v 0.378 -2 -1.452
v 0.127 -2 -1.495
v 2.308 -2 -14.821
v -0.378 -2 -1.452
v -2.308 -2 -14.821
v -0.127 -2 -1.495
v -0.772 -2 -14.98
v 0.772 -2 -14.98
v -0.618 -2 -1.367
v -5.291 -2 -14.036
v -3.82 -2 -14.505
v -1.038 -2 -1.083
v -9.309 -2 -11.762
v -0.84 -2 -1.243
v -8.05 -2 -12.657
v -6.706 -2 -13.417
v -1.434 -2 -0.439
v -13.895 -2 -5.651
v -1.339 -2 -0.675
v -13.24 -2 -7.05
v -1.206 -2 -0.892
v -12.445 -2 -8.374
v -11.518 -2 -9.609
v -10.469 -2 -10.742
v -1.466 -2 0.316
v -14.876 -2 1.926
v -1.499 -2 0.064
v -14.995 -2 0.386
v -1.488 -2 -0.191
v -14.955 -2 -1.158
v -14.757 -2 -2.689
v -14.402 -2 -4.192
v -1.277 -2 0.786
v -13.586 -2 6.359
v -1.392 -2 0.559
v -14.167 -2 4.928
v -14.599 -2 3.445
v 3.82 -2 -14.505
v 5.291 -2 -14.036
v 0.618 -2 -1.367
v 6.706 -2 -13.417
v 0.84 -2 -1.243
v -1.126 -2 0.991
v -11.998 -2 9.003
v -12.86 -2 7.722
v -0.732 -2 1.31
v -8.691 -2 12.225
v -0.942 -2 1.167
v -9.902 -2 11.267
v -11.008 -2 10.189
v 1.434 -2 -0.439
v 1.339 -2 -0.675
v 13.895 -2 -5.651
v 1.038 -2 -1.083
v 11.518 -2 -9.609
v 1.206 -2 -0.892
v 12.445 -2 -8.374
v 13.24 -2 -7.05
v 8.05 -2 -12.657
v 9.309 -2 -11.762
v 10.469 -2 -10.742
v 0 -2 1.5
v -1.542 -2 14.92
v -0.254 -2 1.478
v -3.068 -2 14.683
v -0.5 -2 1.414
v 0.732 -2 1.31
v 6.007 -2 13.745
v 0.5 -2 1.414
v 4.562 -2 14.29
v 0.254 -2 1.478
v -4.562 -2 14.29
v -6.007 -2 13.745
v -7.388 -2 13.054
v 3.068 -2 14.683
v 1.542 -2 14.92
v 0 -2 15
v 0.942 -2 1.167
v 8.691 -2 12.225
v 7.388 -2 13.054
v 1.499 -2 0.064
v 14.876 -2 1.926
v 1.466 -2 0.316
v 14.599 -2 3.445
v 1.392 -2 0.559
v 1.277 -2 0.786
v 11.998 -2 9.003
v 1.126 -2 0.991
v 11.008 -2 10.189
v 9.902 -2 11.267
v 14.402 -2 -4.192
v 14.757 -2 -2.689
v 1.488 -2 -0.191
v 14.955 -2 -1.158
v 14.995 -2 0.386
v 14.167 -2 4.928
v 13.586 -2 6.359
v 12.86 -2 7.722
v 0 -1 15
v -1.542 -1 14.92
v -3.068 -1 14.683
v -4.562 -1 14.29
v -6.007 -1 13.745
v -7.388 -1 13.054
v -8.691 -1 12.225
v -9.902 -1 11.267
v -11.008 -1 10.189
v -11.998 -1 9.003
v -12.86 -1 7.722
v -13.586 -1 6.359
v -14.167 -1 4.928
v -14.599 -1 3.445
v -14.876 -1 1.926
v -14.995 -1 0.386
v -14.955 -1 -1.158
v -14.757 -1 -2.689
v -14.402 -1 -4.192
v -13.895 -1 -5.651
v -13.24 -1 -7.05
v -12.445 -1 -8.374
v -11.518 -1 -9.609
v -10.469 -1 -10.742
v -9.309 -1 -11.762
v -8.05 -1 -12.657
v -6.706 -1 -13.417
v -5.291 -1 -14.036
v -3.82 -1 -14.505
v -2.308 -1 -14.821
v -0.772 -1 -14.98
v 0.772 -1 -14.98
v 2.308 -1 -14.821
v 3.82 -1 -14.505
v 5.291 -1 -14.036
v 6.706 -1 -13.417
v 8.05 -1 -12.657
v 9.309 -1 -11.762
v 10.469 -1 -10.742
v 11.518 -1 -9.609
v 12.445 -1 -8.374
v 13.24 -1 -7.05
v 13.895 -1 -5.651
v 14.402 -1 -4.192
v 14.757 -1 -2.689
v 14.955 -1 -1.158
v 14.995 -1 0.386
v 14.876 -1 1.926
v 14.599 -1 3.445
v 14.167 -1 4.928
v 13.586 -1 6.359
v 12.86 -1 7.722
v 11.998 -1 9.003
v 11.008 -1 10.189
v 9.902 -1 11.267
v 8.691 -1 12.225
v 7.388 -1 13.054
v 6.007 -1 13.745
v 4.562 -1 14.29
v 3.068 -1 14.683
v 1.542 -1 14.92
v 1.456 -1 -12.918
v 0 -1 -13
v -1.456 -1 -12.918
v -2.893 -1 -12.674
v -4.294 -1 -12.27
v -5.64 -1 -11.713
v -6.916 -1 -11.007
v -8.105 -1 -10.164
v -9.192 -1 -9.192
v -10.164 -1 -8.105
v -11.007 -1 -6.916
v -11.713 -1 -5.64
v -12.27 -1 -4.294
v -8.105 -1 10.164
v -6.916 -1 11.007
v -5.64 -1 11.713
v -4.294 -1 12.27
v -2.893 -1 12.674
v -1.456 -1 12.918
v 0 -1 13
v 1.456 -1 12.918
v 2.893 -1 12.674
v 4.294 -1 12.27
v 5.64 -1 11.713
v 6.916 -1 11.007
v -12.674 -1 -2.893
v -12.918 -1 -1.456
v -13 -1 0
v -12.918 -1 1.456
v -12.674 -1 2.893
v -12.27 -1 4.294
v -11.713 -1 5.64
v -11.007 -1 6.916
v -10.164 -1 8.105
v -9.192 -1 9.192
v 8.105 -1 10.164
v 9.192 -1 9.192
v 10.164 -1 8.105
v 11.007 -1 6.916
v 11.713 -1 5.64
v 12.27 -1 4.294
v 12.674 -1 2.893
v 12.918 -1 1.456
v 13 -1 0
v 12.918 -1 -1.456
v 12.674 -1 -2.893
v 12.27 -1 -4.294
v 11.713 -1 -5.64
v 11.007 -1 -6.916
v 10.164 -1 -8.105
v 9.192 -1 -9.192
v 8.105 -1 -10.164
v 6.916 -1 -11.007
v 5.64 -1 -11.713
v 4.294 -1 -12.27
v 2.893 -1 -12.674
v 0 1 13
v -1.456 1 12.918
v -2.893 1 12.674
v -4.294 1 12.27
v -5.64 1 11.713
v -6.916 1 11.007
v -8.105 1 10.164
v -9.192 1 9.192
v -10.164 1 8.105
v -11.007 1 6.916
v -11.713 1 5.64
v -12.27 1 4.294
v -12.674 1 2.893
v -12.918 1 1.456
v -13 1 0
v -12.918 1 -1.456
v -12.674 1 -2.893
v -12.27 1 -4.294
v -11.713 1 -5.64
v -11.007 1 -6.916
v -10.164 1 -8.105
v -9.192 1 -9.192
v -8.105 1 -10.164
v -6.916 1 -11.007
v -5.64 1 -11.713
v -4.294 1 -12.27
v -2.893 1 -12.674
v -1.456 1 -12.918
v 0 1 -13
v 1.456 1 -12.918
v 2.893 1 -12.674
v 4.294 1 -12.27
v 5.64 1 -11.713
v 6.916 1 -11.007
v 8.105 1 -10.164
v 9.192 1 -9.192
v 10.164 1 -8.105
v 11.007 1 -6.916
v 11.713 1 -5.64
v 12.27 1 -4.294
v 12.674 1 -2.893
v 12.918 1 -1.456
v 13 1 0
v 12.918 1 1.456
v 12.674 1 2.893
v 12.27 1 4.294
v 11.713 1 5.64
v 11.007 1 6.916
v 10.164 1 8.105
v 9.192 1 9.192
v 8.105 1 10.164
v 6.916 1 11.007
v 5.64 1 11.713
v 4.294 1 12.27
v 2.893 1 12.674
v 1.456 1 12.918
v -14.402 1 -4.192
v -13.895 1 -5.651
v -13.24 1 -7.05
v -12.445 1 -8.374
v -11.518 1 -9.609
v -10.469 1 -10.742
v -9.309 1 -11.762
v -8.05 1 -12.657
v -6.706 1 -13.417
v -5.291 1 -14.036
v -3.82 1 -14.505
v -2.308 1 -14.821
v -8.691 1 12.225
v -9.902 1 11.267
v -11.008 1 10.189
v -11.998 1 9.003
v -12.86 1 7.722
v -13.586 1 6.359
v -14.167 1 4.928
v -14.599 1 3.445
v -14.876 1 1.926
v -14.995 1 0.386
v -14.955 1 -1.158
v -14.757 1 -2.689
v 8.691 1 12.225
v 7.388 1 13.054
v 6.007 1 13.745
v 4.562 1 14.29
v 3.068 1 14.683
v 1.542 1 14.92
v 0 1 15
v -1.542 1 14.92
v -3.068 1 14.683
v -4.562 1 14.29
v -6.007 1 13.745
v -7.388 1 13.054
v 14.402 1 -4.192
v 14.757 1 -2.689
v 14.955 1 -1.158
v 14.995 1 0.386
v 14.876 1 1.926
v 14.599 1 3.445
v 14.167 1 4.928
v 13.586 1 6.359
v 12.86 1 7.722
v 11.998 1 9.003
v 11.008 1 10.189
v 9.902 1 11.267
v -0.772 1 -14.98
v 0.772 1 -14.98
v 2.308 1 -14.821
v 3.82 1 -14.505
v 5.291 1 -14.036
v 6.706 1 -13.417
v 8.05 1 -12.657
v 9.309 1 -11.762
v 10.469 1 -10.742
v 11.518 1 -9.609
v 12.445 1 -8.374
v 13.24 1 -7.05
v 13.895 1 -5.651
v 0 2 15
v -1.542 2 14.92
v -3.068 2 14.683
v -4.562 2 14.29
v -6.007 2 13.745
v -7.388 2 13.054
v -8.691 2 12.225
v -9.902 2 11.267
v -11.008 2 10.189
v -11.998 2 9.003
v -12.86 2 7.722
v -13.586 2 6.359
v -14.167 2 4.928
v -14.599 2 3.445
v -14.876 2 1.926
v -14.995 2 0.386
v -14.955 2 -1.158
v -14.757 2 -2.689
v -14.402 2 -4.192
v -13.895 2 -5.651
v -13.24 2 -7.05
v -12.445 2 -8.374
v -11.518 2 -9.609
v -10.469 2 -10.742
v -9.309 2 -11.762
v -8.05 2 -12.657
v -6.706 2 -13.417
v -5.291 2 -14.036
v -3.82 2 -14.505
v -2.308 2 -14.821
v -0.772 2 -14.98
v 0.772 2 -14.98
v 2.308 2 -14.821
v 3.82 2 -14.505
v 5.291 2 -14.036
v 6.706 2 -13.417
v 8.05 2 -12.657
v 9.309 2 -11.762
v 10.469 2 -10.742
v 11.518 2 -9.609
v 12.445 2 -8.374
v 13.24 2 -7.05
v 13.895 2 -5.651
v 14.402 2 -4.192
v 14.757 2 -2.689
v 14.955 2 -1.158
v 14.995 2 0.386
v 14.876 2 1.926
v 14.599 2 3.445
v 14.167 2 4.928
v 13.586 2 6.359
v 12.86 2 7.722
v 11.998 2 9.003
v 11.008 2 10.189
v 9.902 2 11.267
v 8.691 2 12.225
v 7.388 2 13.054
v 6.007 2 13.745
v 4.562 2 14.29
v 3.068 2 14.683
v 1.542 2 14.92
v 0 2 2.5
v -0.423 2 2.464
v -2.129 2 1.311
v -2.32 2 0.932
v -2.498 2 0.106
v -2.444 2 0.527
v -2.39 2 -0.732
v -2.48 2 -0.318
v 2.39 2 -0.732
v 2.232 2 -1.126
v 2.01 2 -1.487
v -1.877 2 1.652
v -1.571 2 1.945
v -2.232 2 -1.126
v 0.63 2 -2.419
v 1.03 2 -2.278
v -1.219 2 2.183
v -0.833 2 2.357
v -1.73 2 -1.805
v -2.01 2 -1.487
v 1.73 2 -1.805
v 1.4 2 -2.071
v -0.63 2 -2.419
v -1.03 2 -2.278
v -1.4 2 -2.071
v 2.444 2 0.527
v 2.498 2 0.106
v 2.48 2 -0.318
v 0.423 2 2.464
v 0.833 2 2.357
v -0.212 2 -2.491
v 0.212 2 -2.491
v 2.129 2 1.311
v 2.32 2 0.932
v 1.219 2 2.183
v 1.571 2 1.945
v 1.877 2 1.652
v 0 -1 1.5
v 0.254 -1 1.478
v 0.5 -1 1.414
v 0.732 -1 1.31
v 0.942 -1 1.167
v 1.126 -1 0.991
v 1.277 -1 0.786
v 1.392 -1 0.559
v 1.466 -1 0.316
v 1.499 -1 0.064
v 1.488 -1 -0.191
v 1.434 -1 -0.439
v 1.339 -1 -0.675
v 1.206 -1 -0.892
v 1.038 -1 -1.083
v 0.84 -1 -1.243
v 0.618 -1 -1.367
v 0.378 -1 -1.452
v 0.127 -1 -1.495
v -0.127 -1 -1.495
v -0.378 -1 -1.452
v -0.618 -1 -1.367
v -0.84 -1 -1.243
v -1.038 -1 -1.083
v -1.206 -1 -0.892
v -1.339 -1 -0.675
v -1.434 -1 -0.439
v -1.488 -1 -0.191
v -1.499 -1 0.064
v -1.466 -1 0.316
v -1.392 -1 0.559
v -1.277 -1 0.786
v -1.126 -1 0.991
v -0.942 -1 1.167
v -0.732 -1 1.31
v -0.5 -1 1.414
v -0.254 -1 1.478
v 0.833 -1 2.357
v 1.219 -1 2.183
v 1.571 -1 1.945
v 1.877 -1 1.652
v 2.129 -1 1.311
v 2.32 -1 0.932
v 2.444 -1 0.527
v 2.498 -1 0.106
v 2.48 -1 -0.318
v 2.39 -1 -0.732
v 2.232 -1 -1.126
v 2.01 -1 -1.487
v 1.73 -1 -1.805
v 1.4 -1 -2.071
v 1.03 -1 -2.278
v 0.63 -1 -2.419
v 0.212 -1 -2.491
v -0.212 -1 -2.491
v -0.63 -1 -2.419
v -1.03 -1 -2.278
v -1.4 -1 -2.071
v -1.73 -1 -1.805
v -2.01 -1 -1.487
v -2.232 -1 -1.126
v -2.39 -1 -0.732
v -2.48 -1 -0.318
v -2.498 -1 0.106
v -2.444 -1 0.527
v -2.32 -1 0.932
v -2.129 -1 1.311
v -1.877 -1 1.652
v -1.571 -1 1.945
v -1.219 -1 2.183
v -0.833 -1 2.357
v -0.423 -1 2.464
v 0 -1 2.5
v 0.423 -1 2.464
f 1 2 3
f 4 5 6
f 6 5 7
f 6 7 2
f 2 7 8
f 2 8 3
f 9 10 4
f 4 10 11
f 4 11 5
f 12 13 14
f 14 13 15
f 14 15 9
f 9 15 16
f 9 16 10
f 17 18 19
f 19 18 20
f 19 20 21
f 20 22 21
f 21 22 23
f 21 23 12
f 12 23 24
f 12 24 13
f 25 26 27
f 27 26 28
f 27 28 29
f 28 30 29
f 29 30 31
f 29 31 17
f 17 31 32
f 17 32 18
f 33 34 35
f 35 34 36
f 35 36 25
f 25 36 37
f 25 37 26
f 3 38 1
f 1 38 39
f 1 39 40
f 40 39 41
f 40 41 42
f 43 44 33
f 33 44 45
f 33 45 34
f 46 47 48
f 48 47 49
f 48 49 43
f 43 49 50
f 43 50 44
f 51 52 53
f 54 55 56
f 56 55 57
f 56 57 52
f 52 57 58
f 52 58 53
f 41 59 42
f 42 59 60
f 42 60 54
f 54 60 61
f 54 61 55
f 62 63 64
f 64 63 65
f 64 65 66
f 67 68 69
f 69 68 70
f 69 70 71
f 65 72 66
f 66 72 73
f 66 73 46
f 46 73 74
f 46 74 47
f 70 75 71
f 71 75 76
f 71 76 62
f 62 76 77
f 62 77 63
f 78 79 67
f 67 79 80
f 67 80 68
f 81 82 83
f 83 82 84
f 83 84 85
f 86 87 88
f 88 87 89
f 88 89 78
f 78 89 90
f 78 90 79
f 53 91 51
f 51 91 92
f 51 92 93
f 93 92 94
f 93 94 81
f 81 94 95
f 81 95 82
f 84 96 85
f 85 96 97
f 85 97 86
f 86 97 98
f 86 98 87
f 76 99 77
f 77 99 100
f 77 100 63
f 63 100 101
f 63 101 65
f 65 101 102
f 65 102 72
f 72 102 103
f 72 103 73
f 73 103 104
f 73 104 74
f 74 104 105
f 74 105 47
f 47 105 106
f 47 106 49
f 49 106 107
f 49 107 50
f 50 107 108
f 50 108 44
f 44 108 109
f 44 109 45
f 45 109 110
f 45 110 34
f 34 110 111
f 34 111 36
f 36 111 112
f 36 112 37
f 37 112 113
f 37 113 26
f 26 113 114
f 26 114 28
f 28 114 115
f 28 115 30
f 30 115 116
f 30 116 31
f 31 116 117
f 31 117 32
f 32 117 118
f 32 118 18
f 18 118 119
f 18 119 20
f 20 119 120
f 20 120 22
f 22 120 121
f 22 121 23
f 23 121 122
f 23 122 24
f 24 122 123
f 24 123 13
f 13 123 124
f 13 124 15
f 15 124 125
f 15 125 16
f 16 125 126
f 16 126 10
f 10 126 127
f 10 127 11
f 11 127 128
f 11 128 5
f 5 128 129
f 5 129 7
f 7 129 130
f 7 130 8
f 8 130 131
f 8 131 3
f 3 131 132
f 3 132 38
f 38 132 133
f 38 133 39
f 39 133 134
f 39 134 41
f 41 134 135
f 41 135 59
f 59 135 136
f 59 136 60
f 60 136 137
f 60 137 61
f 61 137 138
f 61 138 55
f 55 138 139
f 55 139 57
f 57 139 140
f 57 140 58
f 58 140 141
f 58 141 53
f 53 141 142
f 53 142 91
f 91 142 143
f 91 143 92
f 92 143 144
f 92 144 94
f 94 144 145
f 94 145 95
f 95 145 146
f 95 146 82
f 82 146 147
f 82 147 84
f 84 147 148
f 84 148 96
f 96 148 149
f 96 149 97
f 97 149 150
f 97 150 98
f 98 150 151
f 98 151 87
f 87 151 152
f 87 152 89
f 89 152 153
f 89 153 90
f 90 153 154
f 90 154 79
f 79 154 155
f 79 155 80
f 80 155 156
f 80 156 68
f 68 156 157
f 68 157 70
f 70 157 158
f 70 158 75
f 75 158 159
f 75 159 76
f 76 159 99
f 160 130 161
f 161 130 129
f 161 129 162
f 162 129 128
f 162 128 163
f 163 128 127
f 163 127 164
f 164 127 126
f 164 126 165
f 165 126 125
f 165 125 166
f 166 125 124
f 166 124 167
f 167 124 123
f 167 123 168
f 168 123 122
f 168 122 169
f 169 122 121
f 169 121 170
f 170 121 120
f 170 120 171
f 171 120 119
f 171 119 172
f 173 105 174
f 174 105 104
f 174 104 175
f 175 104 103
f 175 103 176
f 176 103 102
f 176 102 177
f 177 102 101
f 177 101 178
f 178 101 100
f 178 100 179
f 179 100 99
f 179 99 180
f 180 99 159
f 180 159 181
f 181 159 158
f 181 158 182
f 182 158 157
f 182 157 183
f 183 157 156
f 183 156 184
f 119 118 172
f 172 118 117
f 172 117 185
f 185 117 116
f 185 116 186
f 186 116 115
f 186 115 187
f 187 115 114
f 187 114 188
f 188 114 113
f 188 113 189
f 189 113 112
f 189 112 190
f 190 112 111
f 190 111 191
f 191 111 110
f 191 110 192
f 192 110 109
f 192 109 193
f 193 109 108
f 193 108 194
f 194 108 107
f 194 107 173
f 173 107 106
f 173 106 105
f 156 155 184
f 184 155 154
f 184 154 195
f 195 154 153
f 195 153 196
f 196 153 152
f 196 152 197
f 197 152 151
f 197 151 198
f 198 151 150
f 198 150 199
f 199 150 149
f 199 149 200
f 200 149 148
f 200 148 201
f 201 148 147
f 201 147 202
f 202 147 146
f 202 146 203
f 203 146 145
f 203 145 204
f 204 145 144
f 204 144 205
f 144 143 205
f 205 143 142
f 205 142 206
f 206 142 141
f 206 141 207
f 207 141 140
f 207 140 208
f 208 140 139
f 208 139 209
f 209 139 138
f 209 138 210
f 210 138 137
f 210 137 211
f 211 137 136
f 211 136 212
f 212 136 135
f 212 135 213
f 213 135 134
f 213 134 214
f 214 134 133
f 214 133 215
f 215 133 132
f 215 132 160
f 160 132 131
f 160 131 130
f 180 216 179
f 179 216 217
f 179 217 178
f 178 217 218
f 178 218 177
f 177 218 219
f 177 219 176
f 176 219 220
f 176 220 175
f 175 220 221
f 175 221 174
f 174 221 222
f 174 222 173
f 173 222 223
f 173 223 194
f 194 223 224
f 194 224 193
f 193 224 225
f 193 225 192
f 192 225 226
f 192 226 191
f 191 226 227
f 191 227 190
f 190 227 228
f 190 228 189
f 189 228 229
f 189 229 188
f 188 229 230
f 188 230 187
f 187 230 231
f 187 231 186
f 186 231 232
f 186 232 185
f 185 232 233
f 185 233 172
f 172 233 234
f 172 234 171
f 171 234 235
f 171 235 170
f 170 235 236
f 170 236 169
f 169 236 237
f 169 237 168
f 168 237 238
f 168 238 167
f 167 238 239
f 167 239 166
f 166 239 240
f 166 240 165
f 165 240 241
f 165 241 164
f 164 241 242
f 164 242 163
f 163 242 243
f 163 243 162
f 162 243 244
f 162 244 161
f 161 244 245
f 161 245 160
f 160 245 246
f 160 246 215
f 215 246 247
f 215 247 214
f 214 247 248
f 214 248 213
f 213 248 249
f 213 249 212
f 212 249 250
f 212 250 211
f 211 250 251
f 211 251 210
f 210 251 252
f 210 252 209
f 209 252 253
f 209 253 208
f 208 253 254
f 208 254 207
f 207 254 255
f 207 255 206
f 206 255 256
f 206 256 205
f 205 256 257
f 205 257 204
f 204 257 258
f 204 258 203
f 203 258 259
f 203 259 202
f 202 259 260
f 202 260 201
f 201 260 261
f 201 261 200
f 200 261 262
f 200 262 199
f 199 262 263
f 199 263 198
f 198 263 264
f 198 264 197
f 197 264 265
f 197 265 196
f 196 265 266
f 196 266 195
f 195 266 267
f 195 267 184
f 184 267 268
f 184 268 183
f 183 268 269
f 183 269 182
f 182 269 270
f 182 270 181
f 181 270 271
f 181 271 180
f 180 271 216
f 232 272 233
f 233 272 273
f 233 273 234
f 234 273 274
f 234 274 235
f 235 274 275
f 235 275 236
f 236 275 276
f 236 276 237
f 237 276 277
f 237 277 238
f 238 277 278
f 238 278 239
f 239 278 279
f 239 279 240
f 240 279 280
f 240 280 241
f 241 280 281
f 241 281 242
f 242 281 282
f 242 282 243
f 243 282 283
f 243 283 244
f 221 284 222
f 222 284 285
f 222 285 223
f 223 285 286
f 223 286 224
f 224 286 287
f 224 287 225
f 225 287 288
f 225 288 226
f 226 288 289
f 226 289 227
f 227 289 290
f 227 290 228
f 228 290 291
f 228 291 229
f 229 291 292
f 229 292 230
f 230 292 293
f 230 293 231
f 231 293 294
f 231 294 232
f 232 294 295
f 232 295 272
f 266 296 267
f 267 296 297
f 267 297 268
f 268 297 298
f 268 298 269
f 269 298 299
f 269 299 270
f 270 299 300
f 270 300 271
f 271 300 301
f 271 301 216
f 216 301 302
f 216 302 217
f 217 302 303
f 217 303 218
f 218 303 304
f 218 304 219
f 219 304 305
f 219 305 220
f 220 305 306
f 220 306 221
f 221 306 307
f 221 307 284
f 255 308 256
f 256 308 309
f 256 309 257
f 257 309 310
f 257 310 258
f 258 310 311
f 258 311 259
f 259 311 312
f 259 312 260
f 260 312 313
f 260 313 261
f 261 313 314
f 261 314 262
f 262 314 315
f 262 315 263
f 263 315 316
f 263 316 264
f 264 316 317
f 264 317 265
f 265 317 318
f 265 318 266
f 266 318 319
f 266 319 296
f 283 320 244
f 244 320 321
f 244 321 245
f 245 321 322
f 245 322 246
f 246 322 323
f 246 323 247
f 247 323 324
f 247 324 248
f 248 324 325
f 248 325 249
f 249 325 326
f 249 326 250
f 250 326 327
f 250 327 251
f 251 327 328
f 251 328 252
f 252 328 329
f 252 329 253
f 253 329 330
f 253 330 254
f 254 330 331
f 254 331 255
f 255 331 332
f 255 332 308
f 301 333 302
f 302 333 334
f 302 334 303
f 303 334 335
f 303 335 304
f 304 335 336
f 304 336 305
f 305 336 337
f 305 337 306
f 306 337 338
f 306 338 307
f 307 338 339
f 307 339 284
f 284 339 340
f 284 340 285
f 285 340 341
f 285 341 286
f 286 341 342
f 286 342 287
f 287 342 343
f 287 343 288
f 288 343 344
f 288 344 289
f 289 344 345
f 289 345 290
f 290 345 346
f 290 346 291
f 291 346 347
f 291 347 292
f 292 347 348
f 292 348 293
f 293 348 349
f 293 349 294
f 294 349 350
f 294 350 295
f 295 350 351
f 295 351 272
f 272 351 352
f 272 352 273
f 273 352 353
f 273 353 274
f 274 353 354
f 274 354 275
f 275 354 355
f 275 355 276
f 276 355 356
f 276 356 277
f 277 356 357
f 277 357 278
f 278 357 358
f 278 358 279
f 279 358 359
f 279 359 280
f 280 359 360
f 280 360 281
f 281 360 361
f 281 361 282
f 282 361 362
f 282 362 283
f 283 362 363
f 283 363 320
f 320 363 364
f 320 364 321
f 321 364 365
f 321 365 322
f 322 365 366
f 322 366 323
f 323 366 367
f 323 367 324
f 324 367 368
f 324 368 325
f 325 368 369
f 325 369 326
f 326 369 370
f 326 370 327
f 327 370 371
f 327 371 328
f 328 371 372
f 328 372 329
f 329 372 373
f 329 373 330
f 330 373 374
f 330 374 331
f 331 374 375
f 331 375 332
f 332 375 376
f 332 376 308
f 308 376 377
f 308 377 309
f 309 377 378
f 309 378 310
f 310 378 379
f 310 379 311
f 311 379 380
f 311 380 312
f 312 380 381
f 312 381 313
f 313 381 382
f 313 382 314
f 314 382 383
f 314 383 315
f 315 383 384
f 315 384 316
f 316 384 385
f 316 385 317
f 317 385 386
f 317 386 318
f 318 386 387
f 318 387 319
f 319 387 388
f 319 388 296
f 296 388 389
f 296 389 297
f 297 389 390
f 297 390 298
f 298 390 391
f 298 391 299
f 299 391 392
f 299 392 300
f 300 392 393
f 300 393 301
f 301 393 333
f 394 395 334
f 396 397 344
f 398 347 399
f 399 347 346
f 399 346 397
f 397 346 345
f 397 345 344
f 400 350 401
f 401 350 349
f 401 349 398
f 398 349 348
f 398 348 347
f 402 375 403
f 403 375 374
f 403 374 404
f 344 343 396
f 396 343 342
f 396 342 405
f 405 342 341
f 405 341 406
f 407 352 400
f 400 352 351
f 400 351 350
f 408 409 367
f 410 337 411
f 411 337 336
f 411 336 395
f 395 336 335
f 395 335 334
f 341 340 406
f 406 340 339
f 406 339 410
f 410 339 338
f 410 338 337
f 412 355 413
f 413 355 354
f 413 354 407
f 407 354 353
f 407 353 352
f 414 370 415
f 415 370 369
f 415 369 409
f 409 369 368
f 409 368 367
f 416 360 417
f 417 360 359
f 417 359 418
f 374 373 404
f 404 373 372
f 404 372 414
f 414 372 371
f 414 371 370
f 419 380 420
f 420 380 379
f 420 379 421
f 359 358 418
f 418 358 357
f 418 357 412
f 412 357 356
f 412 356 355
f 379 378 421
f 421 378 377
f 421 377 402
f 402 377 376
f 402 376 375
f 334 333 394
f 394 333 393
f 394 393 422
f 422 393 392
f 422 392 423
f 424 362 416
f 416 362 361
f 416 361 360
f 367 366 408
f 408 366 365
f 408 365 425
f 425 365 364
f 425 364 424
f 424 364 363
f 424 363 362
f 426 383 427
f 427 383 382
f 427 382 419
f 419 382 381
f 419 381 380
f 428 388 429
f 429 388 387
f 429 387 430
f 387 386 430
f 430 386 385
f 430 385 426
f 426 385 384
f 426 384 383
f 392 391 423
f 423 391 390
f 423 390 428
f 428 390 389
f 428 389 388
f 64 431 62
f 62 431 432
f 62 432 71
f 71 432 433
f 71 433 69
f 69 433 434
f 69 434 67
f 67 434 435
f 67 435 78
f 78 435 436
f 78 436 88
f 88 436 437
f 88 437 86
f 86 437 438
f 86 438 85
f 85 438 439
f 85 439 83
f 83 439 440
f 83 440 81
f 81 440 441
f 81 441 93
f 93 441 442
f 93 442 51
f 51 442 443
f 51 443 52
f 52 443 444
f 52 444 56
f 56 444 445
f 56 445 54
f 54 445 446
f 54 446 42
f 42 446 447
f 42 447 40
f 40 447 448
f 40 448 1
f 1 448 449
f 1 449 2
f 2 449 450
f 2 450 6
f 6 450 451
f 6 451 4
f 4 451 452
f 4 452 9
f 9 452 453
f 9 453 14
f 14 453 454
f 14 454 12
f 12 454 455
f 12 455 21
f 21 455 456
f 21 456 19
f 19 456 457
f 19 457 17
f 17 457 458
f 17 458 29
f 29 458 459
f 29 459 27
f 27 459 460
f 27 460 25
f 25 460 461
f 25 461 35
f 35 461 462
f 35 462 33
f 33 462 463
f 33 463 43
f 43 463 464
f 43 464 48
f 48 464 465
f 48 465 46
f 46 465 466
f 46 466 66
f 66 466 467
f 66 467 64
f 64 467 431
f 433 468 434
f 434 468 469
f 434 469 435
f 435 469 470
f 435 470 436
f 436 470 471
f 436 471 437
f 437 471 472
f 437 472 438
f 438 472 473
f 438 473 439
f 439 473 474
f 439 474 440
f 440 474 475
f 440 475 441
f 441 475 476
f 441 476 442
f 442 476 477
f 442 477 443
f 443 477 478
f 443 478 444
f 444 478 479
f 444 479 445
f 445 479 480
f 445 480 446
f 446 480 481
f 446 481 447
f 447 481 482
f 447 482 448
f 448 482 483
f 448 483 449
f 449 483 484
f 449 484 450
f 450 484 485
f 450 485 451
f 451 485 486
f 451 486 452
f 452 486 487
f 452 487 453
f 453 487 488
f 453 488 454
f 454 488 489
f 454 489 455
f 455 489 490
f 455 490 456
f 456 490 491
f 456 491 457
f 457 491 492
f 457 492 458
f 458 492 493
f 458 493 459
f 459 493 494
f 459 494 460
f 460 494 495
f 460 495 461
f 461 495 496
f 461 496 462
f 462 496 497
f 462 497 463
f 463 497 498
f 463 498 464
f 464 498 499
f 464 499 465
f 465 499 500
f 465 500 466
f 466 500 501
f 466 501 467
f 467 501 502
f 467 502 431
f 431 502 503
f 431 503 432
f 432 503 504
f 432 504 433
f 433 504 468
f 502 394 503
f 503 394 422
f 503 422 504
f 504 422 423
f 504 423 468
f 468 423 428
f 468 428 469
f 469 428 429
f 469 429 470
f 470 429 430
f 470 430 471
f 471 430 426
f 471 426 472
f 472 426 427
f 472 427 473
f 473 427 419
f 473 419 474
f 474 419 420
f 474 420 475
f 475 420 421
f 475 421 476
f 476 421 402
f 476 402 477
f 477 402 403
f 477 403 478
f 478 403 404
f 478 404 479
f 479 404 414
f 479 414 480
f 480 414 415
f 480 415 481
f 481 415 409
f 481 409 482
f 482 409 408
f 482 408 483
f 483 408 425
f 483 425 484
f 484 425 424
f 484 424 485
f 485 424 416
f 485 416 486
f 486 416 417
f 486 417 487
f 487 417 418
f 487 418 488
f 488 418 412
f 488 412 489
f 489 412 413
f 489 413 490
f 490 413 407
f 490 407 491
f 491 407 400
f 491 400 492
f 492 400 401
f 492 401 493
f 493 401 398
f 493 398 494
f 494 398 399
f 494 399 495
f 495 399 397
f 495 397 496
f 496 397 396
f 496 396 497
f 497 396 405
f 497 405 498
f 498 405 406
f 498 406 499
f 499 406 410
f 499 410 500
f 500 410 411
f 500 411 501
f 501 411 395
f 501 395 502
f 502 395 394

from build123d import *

# Parameters (mm, degrees)
PER_AGE1_D           = 3
PER_AGE1_CBORE_D     = 5
PER_AGE1_CBORE_DEPTH = 3


with BuildPart() as part:
    # Esquisse1 → Révolution1 (revolve)
    with BuildSketch(Plane(origin=(0, 0, 0), x_dir=(0, 0, -1), z_dir=(1, 0, 0))):
        Polygon((0, 2), (-15, 2), (-15, 1), (-13, 1), (-13, -1), (-15, -1), (-15, -2), (0, -2), align=None)
    revolve(axis=Axis((0, 2, 0), (0, -1, 0)))

    # Perçage1 (through all)
    with Locations(Plane(origin=(0, 2, 0), x_dir=(1, 0, 0), z_dir=(0, 1, 0))):
        with Locations((0, 0)):
            CounterBoreHole(PER_AGE1_D / 2, PER_AGE1_CBORE_D / 2, PER_AGE1_CBORE_DEPTH)


solid = part.part
